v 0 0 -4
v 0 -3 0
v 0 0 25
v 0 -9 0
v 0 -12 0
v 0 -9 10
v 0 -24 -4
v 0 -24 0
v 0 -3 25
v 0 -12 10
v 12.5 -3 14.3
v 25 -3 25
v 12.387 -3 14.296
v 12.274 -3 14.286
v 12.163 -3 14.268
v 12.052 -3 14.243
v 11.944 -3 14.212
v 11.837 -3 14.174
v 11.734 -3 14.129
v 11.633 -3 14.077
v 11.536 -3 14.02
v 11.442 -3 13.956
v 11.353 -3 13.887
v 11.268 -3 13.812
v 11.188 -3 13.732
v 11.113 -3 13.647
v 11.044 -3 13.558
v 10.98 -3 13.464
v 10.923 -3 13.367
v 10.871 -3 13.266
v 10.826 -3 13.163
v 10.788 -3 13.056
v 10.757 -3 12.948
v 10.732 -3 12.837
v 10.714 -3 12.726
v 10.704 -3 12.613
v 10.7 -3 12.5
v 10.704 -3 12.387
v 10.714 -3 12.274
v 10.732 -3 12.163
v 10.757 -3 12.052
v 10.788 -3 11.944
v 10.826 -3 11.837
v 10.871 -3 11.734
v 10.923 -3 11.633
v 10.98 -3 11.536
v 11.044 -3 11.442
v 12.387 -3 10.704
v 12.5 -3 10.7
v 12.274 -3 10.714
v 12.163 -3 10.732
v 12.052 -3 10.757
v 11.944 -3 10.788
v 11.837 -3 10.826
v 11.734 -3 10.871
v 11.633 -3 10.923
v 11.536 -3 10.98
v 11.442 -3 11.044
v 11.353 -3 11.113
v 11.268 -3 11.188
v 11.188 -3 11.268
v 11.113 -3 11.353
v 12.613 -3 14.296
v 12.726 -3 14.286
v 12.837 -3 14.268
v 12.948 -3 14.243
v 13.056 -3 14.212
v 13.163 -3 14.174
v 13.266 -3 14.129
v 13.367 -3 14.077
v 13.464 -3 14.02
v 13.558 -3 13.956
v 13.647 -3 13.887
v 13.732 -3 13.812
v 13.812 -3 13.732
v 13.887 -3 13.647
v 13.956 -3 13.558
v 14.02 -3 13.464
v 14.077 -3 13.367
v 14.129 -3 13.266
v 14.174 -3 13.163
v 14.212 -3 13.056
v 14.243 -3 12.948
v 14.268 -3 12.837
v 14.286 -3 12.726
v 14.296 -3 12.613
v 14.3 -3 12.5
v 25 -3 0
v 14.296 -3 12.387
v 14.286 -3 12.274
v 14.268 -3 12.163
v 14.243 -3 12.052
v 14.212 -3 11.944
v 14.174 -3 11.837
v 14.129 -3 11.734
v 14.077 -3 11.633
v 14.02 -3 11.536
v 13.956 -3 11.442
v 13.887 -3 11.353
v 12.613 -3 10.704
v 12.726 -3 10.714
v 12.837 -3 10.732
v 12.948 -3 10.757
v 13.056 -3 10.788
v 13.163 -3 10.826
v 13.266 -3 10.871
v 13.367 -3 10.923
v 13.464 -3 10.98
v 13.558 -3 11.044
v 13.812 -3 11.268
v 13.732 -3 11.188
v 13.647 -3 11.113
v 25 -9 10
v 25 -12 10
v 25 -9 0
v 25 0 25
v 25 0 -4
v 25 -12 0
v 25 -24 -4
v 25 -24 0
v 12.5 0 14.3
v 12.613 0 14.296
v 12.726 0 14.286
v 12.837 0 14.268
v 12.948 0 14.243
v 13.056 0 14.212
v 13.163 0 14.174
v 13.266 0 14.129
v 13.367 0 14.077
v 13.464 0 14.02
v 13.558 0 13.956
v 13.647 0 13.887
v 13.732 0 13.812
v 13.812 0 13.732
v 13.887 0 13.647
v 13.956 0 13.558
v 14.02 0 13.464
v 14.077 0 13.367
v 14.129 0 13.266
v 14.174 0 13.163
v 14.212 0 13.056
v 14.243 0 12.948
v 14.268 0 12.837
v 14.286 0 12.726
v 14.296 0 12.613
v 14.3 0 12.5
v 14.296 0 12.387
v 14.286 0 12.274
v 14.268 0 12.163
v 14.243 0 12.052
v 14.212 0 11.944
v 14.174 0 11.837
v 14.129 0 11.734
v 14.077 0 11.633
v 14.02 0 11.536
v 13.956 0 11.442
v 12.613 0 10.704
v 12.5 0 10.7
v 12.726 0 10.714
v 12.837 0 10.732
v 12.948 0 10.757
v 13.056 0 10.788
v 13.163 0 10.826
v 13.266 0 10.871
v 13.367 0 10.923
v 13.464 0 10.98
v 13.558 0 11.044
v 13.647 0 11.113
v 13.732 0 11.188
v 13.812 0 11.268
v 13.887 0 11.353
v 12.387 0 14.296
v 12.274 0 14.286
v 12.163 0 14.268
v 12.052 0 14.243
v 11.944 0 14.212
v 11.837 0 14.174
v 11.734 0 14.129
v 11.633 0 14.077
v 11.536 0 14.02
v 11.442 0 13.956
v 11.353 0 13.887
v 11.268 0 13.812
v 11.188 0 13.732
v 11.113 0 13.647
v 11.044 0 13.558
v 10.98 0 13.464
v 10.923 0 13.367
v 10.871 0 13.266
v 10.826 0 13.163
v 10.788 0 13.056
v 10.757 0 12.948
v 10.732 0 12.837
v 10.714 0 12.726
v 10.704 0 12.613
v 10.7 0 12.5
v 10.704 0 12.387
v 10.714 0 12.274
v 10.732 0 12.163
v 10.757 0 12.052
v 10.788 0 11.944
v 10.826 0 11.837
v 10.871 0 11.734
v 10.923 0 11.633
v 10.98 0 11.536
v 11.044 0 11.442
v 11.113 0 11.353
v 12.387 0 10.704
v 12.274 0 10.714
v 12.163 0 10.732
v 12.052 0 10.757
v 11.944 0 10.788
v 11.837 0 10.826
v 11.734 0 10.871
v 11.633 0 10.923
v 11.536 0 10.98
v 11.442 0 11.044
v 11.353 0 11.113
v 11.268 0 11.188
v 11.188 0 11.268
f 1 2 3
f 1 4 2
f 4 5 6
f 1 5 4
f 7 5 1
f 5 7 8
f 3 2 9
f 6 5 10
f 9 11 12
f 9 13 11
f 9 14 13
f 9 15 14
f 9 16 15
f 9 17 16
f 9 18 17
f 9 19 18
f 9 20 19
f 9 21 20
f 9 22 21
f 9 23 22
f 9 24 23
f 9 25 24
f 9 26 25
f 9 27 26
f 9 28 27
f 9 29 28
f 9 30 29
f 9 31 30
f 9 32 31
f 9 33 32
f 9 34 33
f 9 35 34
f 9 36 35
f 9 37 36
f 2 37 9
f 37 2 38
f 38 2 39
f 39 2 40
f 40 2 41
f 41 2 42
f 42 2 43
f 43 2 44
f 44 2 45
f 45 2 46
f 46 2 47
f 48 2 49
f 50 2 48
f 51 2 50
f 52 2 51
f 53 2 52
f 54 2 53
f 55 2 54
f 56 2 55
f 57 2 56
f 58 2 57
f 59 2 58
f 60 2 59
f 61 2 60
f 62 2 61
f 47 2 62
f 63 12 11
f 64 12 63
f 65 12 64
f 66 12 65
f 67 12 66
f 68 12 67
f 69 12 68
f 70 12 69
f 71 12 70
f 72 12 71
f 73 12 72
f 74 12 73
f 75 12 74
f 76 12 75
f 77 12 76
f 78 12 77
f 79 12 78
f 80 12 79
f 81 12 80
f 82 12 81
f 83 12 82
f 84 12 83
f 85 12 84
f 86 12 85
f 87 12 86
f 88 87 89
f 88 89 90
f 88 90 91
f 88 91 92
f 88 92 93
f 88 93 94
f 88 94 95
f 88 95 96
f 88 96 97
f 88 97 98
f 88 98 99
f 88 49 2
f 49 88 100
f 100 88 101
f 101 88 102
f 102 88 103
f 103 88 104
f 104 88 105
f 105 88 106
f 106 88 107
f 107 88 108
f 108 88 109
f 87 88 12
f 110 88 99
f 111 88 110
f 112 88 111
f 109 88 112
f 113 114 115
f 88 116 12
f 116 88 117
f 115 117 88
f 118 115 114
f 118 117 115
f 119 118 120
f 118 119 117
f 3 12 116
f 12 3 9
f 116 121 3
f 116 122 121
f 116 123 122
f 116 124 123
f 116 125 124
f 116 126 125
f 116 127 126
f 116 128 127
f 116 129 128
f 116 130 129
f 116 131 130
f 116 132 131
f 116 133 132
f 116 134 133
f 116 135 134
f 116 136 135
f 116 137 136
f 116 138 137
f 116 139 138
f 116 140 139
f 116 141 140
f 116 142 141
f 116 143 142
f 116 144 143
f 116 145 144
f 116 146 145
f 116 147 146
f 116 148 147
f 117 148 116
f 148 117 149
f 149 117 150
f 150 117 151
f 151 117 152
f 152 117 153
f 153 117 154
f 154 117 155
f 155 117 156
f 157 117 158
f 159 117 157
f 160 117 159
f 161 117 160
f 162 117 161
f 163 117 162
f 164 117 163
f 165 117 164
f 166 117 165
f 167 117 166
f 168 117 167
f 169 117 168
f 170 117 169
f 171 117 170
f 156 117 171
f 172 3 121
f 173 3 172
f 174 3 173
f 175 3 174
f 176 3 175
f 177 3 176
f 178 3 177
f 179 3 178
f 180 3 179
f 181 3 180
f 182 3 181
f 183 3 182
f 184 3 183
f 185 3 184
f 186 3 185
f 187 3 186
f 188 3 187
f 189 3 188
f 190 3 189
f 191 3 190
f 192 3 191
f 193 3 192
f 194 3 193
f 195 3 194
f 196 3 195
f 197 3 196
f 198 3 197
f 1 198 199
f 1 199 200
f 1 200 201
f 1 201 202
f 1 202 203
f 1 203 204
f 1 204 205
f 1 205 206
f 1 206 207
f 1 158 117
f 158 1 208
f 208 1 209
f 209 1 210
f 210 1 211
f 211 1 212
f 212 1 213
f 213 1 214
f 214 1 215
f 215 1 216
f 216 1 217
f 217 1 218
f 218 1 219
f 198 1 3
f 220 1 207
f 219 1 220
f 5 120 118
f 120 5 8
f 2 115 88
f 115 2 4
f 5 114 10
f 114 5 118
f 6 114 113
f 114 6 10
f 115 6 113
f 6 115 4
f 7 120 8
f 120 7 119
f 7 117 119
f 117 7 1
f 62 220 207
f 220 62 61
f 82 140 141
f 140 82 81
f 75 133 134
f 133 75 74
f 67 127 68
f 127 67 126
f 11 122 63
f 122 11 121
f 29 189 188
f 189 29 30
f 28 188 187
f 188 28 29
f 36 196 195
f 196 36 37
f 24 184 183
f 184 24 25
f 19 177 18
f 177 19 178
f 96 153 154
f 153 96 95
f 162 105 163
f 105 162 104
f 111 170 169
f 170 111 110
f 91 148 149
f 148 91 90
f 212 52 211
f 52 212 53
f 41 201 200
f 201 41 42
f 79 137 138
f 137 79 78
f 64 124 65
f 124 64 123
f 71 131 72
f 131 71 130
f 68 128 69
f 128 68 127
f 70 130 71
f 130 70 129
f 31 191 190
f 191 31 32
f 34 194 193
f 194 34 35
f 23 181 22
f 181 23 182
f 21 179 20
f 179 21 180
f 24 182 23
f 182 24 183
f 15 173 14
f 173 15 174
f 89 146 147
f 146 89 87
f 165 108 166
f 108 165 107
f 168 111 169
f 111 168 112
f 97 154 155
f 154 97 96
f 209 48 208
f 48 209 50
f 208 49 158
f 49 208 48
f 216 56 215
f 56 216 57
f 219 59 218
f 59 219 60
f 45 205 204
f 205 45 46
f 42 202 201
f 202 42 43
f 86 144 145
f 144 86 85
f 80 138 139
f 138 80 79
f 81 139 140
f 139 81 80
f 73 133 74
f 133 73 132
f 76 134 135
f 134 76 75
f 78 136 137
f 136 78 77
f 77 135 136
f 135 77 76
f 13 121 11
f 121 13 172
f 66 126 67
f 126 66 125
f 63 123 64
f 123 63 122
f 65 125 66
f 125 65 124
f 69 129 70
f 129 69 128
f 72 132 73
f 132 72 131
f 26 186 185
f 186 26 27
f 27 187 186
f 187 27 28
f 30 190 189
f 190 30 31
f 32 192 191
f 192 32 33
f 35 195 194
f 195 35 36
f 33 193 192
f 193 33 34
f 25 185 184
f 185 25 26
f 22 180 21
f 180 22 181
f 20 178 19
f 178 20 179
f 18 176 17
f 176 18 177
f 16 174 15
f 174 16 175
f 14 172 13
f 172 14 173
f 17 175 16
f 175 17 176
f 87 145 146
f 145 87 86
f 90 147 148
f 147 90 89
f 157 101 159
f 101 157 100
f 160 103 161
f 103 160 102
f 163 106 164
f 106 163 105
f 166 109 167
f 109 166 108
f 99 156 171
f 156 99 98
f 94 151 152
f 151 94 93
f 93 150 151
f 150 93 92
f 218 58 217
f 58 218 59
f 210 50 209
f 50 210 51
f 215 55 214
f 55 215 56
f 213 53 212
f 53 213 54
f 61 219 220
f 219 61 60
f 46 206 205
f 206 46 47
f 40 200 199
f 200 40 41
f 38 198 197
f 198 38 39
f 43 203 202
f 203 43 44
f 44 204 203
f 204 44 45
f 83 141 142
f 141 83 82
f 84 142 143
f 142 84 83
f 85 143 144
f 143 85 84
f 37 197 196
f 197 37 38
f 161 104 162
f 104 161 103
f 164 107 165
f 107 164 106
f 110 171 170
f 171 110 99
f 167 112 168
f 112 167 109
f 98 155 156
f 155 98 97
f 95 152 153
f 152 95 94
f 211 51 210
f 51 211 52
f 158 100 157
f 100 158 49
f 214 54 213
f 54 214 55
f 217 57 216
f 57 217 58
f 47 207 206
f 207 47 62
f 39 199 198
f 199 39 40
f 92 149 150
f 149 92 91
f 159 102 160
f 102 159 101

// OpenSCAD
module clamp() {
    cube([25,25,3]);
    translate([0,0,9])
    cube([25,10,3]);
    translate([0,-4,0])
    cube([25,4,24]);
}

rotate([90,0,0])
difference() {
    clamp();
    translate([12.5,12.5,0])
    color("black")
    cylinder(12,d=3.6,$fn=100);
}
